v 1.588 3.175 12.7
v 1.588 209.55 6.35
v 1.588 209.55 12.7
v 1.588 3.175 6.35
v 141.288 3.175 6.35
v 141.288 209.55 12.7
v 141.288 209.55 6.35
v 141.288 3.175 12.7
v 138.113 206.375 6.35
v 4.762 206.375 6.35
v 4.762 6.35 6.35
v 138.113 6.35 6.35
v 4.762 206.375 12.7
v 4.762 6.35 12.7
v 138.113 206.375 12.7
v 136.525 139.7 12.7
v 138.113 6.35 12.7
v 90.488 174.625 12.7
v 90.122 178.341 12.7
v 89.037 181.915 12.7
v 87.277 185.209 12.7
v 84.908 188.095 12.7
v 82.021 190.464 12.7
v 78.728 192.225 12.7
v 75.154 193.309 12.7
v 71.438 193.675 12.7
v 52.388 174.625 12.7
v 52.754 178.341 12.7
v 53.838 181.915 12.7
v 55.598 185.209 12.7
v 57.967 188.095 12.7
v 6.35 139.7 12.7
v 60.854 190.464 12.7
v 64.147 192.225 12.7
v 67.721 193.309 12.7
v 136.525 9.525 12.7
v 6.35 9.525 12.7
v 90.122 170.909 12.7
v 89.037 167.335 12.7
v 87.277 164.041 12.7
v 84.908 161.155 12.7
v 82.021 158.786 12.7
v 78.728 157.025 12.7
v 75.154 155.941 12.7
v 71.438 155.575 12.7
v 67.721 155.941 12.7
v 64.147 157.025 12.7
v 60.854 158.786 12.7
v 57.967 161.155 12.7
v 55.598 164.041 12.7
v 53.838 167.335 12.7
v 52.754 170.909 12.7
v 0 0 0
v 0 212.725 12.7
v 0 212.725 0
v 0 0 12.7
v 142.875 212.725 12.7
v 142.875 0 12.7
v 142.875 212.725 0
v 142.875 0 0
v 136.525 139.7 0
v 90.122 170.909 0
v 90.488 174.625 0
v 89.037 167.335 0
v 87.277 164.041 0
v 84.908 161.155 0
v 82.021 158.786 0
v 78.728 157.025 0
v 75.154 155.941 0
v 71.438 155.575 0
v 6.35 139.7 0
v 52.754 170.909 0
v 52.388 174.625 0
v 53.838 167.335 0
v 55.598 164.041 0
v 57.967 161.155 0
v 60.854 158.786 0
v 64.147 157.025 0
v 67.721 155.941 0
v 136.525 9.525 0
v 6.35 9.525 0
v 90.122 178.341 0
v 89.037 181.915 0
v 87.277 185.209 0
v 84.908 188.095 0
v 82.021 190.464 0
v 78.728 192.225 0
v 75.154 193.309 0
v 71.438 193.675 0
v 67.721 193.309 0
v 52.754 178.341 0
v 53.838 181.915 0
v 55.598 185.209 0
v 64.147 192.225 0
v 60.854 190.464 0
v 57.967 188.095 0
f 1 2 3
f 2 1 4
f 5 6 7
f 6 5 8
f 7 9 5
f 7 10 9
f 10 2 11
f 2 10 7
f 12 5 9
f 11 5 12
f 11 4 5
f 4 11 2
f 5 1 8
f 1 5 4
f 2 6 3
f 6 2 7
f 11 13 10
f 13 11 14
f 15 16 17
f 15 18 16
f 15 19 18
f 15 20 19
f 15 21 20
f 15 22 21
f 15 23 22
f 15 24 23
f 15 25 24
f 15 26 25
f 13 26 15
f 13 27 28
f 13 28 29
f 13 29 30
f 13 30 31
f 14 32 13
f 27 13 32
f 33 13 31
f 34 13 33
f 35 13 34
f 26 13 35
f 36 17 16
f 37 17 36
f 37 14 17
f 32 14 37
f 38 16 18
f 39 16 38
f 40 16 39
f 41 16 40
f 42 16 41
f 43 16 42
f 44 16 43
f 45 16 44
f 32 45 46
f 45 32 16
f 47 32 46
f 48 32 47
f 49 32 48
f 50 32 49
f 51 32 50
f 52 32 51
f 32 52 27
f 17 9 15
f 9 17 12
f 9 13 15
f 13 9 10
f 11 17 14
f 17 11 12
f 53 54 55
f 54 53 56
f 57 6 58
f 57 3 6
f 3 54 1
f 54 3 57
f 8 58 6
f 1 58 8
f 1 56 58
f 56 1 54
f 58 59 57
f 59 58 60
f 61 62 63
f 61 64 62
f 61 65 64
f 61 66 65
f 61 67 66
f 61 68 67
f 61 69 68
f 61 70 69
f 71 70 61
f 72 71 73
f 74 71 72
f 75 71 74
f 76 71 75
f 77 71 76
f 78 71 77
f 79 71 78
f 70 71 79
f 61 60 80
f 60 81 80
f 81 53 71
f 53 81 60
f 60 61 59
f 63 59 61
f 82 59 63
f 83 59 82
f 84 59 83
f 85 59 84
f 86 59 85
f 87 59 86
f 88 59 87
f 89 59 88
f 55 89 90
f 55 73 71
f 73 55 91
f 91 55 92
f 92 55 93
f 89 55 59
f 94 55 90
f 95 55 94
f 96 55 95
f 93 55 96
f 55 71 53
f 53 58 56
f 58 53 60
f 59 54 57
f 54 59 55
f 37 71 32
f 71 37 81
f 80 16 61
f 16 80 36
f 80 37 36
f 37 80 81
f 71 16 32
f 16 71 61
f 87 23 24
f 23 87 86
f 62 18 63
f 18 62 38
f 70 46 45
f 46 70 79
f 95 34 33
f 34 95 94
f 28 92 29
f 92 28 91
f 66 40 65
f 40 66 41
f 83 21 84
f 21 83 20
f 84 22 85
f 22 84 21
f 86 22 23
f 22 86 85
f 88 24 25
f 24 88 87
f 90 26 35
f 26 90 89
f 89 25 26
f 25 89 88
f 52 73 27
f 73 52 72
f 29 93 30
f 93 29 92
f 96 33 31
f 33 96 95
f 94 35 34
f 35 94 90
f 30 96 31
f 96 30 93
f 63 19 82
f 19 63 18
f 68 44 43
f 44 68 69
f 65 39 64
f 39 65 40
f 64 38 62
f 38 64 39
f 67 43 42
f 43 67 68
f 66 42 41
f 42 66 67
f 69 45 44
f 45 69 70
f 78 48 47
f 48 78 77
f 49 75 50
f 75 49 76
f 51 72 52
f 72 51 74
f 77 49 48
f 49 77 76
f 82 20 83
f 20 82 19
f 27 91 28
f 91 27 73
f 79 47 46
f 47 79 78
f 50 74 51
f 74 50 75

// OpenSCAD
// test

$inch = 25.4;

$side = 5.125 * $inch;

$hose_hole_r = $inch* 3/4;

module router_cutout() {
    cube([$side, $side, $inch]);
}

// router_cutout();

module dust_cuff() {
    cube([$side+(0.5*$inch), $side+(3.25*$inch), $inch/2]);
}

module hose_hole() {
    cylinder(r=$hose_hole_r, h=$inch,$fn=32);
}

module brush_cut() {
    $bside = $side + $inch;
    $factor = 2.0;
    difference() {
        cube([$bside-$inch*5/8, $bside+($factor*$inch), $inch * 3/8]);
        translate([$inch/8,$inch/8,0]) {
            cube([$bside-$inch*7/8, $bside+($factor*$inch)-$inch/4, $inch/4]);
        }
    }
}

module assembly() {
    difference() {
        dust_cuff();
        translate([$inch/4, $inch*3/8, 0]) {
            router_cutout();
        }
        translate([3.75*$hose_hole_r, (6+7/8)*$inch, 0]) {
            hose_hole();
        }
        translate([$inch*1/16,$inch*1/8,1/4*$inch]) {
            brush_cut();
        }
    }
}

assembly();
/*
translate([0,0,0]) {
    cube([1/4*$inch, 50, 20]);
}
*/
